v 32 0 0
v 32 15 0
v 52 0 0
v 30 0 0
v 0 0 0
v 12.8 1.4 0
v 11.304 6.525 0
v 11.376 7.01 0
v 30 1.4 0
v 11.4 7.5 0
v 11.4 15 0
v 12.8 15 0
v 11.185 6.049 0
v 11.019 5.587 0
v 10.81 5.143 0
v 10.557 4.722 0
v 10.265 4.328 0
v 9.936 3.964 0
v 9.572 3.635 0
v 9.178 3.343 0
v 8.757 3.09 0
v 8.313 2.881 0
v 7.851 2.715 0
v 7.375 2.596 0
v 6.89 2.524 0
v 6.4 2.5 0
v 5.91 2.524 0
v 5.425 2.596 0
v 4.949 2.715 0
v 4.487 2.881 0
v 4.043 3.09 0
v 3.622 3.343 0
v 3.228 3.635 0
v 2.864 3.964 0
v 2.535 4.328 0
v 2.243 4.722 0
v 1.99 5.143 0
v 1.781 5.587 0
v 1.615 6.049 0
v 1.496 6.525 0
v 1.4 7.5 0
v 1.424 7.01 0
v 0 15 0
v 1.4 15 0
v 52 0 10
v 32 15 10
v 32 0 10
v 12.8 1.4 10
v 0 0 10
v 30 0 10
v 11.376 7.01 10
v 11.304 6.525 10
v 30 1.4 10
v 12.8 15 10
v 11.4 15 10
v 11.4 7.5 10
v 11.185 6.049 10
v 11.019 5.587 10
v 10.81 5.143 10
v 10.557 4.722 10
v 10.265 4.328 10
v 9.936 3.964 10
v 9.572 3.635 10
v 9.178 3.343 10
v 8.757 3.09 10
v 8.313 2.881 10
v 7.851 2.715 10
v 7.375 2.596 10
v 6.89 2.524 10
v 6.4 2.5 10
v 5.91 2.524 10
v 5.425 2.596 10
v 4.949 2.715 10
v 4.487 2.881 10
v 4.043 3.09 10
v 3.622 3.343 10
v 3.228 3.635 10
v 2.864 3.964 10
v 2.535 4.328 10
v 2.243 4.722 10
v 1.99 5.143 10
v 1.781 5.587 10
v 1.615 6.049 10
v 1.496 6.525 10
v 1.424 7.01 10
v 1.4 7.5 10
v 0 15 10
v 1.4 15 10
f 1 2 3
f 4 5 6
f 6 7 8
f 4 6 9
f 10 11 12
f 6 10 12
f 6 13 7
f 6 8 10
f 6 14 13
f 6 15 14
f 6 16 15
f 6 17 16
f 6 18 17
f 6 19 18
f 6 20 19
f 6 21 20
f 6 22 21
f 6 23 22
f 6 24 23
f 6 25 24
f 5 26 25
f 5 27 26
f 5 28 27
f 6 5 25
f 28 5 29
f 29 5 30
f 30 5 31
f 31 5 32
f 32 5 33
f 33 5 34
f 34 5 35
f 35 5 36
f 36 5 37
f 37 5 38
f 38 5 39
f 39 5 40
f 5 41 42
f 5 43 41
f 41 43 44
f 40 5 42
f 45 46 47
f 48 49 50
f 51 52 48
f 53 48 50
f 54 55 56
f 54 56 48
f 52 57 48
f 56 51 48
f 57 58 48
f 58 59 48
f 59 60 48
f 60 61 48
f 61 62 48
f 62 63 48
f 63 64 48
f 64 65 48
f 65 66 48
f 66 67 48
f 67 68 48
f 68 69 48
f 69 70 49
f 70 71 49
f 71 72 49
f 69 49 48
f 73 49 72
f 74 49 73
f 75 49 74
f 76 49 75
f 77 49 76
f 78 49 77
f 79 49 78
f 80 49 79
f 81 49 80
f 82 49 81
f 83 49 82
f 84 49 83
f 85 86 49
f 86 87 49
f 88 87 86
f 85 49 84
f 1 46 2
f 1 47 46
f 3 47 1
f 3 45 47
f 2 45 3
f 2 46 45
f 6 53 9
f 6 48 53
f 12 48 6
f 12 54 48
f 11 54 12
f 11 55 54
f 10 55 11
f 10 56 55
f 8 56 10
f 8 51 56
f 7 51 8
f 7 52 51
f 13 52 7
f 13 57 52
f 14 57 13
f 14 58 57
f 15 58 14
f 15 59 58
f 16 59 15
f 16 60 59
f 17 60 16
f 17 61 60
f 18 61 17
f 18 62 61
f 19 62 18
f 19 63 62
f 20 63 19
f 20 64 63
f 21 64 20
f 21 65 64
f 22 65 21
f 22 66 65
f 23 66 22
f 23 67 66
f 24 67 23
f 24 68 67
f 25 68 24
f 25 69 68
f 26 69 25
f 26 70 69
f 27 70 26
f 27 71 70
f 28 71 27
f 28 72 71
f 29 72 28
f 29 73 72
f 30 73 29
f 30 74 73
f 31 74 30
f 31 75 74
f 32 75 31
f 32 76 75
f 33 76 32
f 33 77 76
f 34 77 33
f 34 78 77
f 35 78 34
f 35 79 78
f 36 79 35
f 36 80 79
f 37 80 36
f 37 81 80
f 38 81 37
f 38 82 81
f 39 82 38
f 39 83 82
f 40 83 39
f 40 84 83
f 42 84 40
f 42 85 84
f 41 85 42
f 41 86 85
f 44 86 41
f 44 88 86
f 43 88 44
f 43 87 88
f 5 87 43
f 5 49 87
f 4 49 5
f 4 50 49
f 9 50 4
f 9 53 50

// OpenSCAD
$fn = $preview ? 16 : 64;

// length of profile
length = 10;
// height of profile
height = 15;
width_1 = 10;
width_2 = 20;
// width of walls
width_wall = 1.4;

module __hidden__ () {}

eps = 0.1;
eps2 = 0.2;

points = [
     [0,0]
    ,[width_2,0]
    ,[0,height]
];

module profile_base() {
    difference() {
        polygon(points);
        
        translate([width_0_1 + width_wall, -width_wall])
            square([width_2, height]);
        
        translate([width_0 + width_wall, -width_wall])
            square([width_1 - width_wall, height / 2 ]);    
        
        translate([width_0 + width_1 / 2 + width_wall / 2, height / 2])
            circle(d = width_1 - width_wall);
            //square([width_1 - width_wall, height / 2 ]);            
    }
}

linear_extrude(length) {

    translate([width_1 + width_2 + 2, 0, 0])
        polygon(points);

    difference() {
        square([width_1 + width_2, height]);
        
        translate([width_wall, height / 2, 0])
            square([width_1,  height / 2 + eps2]);
        
        translate([width_wall + width_1 / 2, height / 2, 0])
            circle(d = width_1);
       
        translate([width_1 + 2 * width_wall, width_wall, 0])
            square([width_2, height]);
    }    
}
